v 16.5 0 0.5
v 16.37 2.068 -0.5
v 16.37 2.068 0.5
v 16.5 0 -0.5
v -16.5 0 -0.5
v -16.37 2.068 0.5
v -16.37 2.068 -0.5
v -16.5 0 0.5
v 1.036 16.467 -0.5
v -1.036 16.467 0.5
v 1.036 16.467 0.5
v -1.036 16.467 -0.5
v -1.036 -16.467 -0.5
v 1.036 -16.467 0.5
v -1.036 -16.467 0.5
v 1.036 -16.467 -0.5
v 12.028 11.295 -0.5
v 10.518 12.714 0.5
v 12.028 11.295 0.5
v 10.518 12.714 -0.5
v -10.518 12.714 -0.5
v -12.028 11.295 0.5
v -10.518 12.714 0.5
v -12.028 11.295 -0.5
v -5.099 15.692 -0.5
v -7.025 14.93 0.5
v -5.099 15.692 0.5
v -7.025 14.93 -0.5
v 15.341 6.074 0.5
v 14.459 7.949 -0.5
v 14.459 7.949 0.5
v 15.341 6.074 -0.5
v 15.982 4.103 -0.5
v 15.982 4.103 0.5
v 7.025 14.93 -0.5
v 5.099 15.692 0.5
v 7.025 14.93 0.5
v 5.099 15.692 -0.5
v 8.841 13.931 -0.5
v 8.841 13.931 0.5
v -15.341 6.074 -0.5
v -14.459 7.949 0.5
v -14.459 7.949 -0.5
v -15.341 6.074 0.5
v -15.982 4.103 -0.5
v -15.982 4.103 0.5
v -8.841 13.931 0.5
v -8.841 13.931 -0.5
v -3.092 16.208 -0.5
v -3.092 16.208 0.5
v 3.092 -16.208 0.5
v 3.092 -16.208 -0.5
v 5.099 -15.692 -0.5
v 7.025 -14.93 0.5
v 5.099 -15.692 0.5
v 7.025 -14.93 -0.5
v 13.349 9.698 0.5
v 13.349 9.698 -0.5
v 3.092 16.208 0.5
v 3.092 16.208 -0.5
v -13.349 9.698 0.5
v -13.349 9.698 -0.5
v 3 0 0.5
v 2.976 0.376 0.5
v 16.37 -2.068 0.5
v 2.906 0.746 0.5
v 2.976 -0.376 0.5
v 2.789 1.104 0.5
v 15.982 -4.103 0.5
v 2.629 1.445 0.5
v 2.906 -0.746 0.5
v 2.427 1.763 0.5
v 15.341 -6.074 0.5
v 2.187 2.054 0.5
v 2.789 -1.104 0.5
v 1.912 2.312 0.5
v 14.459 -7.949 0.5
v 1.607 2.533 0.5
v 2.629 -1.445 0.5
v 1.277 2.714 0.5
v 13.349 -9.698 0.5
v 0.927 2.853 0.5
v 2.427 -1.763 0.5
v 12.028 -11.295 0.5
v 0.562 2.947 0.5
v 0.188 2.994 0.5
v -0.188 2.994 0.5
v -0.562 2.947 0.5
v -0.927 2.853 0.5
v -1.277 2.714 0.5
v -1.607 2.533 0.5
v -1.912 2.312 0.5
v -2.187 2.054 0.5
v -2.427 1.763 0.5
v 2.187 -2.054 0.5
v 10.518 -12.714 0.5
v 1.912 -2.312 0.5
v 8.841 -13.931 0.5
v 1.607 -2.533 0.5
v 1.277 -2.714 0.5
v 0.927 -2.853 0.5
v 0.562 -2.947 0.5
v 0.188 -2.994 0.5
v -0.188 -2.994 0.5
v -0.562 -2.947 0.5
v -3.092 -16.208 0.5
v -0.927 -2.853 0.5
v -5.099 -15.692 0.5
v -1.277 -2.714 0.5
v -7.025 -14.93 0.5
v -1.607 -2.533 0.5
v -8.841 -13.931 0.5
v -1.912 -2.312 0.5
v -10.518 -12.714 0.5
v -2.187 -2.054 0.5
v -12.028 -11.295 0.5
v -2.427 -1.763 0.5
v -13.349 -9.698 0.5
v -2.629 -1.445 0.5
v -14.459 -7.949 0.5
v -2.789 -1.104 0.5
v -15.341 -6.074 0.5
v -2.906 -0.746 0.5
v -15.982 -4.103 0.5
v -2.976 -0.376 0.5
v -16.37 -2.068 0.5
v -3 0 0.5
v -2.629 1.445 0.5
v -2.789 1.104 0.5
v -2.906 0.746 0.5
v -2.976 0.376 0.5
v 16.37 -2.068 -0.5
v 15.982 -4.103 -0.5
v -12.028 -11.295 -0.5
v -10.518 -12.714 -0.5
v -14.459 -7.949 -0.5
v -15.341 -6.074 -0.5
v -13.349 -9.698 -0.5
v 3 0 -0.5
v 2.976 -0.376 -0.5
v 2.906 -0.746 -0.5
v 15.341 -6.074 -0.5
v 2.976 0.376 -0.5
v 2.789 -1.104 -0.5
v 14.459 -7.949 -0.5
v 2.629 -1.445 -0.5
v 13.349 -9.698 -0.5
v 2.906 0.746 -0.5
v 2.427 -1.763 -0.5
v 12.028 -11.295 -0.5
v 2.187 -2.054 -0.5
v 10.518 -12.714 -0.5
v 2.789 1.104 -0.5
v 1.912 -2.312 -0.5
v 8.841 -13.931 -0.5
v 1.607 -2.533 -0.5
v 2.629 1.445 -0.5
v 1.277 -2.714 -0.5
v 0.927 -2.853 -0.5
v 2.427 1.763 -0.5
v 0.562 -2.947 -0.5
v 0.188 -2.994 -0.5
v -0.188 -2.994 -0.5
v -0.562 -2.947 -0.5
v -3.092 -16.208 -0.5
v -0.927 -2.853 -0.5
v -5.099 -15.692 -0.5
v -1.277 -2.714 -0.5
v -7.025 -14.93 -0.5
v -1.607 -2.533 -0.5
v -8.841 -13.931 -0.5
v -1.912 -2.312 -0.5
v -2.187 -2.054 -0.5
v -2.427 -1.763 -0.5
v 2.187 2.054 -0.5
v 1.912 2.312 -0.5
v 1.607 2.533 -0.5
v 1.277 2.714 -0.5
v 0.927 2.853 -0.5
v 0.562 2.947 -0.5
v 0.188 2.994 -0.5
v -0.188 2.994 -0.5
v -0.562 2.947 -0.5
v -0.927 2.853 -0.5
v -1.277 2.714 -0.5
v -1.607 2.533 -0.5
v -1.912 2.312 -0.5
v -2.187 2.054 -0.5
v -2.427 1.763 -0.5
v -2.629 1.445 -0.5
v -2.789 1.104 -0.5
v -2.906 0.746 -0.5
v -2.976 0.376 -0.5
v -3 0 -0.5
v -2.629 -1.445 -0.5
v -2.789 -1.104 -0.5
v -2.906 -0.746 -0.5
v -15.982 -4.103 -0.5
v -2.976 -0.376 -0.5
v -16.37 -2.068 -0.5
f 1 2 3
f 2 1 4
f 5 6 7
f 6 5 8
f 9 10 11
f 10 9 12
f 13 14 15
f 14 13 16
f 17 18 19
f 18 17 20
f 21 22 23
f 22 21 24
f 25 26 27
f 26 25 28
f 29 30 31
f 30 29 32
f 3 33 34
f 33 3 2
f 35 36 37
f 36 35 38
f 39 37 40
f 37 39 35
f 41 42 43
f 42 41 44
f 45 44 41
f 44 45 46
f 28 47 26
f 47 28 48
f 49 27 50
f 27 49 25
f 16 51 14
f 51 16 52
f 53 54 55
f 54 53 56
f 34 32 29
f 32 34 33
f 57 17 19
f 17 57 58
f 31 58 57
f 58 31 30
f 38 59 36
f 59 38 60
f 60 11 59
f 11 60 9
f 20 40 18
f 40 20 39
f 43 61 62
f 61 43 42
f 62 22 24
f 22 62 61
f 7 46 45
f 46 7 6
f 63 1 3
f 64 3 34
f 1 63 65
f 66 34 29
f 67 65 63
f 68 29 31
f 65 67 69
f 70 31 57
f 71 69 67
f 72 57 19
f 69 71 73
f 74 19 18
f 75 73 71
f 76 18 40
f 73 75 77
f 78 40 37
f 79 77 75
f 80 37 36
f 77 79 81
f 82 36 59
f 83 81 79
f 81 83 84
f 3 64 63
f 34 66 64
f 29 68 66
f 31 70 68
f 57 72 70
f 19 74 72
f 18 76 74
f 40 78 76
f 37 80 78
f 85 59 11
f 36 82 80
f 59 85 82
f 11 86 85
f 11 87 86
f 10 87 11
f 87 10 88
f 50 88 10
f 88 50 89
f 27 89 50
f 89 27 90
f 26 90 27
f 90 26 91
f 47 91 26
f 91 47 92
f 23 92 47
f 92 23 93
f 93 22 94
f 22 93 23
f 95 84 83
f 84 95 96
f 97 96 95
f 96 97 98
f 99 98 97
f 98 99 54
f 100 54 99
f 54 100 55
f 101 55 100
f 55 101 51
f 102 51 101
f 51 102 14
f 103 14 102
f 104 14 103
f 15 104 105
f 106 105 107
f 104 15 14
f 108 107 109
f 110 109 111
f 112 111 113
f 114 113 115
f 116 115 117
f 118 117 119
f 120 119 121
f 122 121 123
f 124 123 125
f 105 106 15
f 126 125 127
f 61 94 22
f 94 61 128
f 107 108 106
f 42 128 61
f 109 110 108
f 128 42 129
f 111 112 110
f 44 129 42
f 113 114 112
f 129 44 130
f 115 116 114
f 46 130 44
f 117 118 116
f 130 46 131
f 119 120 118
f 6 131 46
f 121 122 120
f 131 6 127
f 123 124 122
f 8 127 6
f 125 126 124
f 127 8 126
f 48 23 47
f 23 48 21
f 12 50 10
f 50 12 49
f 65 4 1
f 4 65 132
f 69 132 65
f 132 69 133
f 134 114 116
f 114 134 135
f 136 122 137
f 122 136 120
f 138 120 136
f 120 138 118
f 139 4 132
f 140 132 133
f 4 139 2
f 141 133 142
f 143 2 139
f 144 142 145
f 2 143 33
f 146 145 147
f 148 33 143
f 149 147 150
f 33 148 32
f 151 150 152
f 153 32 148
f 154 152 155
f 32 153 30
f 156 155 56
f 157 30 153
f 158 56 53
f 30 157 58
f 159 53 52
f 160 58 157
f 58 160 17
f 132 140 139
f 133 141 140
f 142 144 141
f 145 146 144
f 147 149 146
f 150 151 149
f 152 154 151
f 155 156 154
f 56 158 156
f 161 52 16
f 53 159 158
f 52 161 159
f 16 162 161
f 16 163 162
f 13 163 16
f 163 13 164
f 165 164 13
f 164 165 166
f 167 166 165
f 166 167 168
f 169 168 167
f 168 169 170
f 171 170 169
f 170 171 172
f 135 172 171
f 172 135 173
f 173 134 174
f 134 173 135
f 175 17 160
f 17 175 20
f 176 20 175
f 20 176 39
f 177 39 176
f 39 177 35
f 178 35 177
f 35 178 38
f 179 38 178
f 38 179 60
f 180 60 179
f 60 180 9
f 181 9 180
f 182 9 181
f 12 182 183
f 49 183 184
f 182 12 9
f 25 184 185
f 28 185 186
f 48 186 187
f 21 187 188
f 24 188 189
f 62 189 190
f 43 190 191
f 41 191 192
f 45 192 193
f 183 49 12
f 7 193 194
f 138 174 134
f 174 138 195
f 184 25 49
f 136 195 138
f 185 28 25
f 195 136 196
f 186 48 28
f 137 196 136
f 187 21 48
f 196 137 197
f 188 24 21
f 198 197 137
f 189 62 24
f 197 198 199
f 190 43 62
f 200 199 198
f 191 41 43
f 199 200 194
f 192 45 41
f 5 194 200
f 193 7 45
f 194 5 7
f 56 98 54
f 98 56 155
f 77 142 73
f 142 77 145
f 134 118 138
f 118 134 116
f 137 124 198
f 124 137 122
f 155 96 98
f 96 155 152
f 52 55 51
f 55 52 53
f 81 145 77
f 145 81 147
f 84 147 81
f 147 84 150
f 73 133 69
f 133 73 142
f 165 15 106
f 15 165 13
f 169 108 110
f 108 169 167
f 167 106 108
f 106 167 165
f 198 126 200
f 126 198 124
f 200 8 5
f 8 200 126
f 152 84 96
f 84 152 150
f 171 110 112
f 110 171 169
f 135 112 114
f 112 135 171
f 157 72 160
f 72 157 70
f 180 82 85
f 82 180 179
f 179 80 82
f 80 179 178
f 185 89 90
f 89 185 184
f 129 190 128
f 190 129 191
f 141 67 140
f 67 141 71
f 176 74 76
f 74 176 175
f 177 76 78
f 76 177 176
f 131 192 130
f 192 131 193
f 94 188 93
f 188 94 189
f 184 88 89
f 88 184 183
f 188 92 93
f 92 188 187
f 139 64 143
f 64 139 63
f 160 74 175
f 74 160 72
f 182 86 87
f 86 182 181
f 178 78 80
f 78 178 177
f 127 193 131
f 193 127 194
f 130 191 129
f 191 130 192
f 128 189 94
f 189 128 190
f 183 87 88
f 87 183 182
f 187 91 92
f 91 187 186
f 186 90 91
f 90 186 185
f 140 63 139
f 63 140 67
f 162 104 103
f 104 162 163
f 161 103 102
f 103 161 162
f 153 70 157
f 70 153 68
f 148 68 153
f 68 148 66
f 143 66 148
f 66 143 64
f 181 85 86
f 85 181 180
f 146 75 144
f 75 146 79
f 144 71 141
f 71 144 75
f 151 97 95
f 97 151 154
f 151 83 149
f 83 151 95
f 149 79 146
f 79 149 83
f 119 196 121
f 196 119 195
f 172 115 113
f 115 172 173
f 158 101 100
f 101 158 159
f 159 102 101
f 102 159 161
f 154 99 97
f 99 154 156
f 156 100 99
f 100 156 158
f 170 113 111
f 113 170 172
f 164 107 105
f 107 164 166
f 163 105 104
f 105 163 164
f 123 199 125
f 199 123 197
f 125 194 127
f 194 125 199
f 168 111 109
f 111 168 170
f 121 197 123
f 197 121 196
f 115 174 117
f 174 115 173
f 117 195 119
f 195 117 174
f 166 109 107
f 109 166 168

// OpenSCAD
$fn = 50;


difference() {
	union() {
		translate(v = [0, 0, -0.5000000000]) {
			cylinder(h = 1, r = 16.5000000000);
		}
	}
	union() {
		translate(v = [0, 0, -100.0000000000]) {
			cylinder(h = 200, r = 3);
		}
	}
}
